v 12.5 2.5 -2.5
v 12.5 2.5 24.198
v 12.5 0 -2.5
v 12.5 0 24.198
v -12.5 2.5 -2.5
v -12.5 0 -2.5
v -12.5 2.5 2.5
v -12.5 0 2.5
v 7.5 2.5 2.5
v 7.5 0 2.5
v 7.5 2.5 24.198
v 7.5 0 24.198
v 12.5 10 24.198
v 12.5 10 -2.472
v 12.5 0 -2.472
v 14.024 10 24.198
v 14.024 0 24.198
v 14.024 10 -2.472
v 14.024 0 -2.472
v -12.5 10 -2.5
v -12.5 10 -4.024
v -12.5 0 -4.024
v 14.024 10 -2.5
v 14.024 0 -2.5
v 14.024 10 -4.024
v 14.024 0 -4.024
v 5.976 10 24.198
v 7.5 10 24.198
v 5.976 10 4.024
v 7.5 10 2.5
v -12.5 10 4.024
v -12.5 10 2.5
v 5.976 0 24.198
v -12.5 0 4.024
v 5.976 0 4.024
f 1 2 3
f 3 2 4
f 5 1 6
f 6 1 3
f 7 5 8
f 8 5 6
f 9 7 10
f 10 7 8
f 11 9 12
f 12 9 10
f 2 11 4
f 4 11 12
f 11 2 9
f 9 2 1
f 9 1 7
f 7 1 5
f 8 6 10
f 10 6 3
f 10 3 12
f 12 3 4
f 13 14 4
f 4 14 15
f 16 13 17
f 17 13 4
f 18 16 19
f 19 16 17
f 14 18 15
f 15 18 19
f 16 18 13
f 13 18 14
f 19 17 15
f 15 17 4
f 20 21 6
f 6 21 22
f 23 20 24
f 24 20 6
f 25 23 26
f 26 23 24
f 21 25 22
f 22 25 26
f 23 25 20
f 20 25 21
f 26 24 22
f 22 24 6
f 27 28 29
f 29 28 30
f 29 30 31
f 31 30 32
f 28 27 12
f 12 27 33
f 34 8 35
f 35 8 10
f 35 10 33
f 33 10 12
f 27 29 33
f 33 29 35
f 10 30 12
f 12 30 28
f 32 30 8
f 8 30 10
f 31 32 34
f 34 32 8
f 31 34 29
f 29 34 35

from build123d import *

# Parameters (mm, degrees)
BOSS_EXTRUDE3_DEPTH = 2.5
SKETCH1_11_W        = 1.524
SKETCH1_11_H        = 26.67
SKETCH1_11_H_2      = 20.174000038
SKETCH1_11_W_2      = 26.524
SKETCH1_11_H_3      = 1.524
BOSS_EXTRUDE4_DEPTH = 10


with BuildPart() as part:
    # Sketch1 → Boss-Extrude3 (new body)
    with BuildSketch(Plane(origin=(0, 0, 0), x_dir=(1, 0, 0), z_dir=(0, 1, 0))):
        Polygon((12.5, -24.198000038), (12.5, 2.5), (-12.5, 2.5), (-12.5, -2.5), (7.500000094, -2.5), (7.500000094, -24.198000038), align=None)
    extrude(amount=BOSS_EXTRUDE3_DEPTH)


with BuildPart() as body_2:
    # Sketch1<11> → Boss-Extrude4 (new body)
    with BuildSketch(Plane(origin=(0, 0, 0), x_dir=(1, 0, 0), z_dir=(0, 1, 0))):
        with Locations((13.262, -10.863000038)):
            Rectangle(SKETCH1_11_W, SKETCH1_11_H)
        Polygon((7.500000094, -4.024), (7.500000094, -2.5), (-12.5, -2.5), (-12.5, -4.024), (5.976000094, -4.024), align=None)
        with Locations((6.738000094, -14.111000019)):
            Rectangle(SKETCH1_11_W, SKETCH1_11_H_2)
        with Locations((0.762, 3.262)):
            Rectangle(SKETCH1_11_W_2, SKETCH1_11_H_3)
    extrude(amount=BOSS_EXTRUDE4_DEPTH)


solid = Compound([part.part, body_2.part])
